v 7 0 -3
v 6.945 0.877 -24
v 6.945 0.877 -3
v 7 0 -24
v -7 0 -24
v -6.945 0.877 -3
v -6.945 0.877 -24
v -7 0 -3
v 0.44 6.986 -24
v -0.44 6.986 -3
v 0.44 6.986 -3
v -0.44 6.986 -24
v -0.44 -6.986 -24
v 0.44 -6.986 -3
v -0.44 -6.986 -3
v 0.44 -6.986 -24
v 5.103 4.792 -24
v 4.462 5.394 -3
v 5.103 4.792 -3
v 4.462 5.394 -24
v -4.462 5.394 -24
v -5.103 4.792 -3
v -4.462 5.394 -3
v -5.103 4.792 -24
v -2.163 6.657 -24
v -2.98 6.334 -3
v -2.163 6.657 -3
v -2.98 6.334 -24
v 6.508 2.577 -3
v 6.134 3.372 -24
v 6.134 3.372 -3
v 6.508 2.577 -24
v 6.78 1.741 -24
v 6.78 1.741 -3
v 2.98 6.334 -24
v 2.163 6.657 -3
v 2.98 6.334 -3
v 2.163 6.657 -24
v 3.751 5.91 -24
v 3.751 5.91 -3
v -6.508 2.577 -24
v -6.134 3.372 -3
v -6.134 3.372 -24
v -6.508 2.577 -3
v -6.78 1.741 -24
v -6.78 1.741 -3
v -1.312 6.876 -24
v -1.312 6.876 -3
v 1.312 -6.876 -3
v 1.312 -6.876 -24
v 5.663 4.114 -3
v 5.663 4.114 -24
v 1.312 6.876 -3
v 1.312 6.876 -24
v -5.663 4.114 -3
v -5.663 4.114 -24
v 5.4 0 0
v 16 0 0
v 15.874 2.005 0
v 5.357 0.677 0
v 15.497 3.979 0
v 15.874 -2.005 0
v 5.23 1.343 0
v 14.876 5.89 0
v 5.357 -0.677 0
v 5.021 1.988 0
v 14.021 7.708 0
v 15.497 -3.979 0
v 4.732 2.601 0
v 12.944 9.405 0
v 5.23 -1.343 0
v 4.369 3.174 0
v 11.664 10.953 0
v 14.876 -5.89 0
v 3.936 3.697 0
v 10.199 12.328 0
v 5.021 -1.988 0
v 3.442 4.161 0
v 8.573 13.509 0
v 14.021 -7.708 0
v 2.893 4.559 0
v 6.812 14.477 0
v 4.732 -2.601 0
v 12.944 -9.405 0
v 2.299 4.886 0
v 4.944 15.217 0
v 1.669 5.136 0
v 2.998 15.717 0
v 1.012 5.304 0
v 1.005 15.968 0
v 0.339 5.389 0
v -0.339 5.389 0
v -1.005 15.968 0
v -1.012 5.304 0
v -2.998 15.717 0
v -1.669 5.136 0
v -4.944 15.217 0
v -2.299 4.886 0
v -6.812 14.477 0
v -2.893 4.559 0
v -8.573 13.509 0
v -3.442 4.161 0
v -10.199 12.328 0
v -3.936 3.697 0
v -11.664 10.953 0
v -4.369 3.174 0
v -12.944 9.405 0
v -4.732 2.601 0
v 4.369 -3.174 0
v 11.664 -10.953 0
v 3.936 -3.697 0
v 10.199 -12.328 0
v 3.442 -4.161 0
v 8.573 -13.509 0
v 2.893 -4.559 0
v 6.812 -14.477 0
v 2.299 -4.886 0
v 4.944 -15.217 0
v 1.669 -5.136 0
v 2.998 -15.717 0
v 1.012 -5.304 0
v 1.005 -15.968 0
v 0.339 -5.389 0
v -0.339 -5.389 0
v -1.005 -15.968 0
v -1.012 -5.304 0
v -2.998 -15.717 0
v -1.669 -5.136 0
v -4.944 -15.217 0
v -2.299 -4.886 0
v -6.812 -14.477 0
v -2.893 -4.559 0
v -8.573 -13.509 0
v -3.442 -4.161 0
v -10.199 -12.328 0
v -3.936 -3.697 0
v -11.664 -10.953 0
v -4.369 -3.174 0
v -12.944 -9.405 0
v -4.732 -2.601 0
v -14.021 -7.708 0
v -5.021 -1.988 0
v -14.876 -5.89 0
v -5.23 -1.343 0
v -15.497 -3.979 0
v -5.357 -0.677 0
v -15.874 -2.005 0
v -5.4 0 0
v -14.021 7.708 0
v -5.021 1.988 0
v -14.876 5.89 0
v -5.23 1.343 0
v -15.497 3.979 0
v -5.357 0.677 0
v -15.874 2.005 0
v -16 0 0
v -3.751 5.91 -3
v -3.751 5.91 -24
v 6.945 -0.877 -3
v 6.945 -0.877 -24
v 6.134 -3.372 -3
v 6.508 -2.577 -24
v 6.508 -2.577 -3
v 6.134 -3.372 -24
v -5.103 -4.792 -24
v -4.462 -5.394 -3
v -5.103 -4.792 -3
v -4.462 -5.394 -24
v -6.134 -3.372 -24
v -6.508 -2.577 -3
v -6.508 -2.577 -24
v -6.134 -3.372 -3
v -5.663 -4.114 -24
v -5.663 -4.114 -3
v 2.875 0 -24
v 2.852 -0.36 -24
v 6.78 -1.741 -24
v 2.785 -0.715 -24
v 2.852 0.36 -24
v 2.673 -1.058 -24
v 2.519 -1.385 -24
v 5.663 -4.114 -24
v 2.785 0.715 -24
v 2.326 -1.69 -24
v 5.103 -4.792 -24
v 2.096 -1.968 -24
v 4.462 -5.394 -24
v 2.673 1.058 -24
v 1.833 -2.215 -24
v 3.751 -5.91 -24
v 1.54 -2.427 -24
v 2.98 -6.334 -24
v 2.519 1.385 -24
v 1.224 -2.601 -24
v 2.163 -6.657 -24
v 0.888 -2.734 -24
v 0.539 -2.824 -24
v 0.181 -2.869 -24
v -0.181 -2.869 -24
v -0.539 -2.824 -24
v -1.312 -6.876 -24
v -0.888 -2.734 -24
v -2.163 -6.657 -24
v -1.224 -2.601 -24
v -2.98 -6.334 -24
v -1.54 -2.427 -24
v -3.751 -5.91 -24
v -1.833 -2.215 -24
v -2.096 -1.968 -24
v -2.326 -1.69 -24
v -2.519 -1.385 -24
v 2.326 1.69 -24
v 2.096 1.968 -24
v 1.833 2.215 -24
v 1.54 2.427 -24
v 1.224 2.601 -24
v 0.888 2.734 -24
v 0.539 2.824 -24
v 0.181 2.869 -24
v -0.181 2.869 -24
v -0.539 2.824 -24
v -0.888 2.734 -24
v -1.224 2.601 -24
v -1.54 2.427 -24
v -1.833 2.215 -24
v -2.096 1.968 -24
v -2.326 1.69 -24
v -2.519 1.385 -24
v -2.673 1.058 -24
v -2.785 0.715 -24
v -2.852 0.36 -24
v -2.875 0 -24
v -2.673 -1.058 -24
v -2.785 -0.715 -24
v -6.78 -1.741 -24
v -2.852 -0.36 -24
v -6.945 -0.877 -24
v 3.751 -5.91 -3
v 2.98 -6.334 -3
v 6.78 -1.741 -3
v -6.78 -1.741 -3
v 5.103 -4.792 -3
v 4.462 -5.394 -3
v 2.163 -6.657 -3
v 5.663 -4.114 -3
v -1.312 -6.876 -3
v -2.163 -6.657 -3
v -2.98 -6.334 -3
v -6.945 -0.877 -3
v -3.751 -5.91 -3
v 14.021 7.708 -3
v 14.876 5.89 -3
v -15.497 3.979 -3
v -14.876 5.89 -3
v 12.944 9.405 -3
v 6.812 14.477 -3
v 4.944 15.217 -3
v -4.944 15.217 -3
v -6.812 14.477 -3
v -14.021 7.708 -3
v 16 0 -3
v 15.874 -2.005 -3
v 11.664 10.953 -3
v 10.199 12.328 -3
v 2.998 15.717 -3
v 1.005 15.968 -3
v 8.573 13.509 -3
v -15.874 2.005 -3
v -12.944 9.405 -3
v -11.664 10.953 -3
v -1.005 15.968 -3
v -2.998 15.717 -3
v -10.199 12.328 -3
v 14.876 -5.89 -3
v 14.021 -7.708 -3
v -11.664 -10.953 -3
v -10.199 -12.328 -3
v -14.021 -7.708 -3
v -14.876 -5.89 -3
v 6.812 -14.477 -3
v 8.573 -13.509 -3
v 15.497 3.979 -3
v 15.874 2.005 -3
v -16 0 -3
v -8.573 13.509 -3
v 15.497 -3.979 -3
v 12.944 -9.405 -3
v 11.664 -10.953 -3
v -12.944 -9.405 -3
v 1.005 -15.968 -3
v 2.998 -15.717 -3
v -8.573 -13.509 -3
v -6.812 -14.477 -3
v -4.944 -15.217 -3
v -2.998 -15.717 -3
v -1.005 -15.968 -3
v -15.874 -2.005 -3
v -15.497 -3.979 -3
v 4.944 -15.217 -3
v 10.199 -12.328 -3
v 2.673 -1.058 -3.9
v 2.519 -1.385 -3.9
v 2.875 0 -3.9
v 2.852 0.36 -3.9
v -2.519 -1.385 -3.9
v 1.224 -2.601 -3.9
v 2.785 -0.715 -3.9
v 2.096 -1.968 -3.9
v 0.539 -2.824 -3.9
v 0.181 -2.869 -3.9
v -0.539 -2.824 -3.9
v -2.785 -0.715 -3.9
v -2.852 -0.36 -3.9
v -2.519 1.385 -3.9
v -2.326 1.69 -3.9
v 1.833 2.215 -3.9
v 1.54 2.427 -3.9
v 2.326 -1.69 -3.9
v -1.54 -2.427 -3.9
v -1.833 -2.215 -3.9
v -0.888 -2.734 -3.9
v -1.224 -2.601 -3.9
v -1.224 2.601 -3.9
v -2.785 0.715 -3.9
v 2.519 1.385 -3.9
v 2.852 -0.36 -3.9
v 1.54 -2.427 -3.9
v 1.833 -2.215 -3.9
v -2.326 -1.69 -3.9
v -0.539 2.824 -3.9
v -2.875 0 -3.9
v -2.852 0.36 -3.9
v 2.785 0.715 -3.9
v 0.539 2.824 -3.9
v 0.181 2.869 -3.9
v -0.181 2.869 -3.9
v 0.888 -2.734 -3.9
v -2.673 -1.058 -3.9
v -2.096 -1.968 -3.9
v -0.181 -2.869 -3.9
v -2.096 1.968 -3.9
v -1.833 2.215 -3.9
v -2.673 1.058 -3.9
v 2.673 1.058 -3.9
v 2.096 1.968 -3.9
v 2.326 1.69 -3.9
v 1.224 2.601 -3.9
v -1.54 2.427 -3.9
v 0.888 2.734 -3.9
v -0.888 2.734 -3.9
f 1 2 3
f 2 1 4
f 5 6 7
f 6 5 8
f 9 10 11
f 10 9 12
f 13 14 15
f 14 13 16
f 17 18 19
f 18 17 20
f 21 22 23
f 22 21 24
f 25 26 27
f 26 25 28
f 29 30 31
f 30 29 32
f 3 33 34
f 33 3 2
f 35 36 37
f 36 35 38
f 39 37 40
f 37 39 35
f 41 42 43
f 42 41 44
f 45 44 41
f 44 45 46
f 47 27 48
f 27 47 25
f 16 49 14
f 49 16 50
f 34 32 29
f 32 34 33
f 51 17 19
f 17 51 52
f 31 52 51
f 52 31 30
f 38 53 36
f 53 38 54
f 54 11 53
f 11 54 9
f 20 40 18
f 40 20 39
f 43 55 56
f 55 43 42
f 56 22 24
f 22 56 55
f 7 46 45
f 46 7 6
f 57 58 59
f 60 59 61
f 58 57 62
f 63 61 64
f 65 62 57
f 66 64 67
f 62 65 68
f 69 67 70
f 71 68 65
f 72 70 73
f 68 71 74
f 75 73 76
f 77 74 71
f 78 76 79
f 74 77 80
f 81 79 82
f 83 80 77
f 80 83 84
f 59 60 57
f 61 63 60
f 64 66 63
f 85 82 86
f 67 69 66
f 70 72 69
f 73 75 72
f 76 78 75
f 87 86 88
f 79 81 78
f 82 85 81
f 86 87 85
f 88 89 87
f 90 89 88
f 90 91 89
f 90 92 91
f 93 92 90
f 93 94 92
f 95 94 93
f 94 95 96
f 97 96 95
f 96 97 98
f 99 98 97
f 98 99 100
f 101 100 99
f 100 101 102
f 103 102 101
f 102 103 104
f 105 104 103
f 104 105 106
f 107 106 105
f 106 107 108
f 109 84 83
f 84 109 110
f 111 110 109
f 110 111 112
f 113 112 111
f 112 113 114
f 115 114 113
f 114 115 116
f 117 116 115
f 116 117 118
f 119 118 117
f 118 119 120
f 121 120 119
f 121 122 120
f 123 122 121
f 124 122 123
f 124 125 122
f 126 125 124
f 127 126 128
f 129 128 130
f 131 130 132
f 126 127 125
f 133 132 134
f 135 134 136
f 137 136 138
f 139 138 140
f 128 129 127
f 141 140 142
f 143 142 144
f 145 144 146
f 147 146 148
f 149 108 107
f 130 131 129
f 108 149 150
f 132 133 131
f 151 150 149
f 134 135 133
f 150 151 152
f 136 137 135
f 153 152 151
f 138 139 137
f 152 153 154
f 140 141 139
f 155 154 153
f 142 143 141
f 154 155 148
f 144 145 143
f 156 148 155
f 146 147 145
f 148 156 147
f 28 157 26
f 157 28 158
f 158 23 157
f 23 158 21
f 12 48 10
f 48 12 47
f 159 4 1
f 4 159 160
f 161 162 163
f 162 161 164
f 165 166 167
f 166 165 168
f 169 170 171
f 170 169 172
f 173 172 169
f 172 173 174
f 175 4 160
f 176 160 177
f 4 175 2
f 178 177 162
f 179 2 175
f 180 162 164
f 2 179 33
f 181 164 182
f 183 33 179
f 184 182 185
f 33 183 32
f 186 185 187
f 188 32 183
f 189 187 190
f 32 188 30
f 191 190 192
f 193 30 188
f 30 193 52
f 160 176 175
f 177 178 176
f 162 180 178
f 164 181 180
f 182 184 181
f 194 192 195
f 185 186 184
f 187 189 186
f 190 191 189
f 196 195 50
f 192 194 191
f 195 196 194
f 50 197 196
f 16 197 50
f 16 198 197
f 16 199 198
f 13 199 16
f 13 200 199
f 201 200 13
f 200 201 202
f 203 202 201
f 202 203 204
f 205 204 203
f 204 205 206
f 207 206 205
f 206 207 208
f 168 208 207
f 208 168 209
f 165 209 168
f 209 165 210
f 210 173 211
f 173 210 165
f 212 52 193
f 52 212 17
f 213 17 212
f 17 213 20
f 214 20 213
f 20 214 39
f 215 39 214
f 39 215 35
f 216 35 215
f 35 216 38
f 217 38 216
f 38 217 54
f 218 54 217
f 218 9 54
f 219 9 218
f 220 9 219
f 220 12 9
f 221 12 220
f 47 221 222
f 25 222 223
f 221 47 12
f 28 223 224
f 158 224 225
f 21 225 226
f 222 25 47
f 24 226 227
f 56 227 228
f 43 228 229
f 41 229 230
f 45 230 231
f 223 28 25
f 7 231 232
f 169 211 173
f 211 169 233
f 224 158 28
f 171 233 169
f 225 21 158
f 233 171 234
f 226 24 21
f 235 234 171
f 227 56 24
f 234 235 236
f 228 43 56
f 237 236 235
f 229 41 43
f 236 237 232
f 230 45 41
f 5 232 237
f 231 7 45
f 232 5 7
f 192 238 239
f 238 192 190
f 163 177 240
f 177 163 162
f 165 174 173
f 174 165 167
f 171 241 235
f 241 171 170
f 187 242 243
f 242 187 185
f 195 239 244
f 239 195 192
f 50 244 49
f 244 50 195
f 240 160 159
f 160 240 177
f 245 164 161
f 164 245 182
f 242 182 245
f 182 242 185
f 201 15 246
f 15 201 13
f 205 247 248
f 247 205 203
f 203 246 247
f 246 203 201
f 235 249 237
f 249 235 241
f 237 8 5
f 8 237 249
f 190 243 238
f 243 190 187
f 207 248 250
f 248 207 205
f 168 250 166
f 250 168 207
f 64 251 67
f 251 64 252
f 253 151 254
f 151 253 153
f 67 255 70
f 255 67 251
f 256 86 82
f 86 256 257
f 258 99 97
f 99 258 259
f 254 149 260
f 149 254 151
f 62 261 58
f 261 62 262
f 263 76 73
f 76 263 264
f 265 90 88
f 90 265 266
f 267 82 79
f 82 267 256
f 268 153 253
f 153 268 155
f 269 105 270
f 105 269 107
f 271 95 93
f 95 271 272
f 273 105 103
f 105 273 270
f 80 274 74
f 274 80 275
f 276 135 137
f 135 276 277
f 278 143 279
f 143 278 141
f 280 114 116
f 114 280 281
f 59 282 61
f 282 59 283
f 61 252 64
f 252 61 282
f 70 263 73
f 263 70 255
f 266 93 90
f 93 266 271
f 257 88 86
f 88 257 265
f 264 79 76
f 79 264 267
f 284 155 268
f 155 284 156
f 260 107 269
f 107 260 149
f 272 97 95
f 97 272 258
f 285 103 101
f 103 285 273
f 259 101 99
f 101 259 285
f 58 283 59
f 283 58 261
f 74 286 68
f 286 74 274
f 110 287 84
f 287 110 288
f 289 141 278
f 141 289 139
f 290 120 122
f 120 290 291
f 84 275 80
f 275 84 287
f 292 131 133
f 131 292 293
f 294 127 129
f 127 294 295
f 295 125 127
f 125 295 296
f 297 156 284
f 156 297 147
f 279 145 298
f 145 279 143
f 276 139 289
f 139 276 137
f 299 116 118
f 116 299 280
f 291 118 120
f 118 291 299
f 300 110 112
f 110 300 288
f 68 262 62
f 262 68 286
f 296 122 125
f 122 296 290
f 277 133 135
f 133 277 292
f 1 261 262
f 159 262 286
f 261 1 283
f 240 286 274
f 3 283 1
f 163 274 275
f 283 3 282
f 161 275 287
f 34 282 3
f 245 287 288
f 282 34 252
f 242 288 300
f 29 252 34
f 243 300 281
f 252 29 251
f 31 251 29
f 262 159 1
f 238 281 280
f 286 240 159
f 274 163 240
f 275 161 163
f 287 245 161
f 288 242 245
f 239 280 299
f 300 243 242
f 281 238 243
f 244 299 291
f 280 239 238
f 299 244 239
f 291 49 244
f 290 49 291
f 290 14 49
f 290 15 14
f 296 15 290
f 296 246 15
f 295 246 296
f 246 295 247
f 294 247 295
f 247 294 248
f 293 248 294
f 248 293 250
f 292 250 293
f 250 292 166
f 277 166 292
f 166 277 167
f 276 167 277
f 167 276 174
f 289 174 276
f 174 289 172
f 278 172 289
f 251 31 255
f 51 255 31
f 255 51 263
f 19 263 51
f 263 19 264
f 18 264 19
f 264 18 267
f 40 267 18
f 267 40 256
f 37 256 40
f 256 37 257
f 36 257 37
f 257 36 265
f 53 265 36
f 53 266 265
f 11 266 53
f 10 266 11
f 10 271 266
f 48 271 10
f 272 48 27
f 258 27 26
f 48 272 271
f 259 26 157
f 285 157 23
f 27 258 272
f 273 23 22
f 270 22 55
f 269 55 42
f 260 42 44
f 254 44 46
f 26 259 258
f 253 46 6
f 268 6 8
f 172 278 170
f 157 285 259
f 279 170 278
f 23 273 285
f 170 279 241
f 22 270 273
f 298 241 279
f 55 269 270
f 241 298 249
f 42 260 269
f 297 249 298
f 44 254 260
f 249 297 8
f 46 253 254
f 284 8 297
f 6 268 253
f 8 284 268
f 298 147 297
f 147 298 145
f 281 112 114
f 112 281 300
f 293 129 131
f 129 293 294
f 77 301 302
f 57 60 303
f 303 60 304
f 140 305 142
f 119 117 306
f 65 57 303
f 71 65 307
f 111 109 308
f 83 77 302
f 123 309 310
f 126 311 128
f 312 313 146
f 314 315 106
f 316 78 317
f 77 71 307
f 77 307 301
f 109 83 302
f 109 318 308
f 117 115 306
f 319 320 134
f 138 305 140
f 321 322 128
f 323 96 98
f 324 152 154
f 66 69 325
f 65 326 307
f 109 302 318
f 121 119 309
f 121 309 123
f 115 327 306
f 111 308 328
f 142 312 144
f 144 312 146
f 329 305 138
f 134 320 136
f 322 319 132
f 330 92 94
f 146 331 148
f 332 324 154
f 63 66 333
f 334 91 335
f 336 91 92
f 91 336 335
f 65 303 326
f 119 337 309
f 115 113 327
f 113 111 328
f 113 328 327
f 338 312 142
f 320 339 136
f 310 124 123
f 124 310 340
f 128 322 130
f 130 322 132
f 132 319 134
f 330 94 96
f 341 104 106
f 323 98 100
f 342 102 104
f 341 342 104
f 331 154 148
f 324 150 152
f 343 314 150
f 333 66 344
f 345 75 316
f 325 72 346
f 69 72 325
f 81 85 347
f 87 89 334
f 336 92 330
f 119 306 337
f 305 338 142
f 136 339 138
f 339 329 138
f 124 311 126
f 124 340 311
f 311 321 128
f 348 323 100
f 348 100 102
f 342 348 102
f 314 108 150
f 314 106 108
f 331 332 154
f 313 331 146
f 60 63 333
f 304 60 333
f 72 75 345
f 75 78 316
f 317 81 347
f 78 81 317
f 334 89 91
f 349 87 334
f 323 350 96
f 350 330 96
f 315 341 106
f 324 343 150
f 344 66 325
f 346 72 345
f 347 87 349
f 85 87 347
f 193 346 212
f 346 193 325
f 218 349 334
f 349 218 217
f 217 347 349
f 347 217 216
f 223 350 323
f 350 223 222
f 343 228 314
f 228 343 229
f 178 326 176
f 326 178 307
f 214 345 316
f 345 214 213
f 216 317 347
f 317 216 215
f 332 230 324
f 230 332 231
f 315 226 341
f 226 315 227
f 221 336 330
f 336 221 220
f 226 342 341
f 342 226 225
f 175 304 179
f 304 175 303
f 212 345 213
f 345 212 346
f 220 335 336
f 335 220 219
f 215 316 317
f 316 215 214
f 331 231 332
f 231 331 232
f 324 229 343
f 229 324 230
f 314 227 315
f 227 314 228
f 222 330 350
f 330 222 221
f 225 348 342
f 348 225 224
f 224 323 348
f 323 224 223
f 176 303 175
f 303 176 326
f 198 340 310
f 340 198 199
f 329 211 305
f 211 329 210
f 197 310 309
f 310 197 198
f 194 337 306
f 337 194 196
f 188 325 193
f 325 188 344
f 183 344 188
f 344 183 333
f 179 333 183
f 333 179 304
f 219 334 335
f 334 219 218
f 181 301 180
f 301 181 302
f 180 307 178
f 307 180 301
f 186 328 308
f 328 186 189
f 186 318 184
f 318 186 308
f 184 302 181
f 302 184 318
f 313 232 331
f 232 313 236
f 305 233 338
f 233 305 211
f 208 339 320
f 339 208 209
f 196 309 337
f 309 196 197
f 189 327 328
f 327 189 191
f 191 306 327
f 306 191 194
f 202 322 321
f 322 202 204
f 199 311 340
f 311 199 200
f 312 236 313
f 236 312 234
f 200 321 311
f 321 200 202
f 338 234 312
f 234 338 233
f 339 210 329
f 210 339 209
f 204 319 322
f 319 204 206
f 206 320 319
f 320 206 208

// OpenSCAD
$fn = 50;


difference() {
	union() {
		translate(v = [0, 0, -24.0000000000]) {
			cylinder(h = 24, r = 7.0000000000);
		}
		translate(v = [0, 0, -3.0000000000]) {
			cylinder(h = 3, r = 16.0000000000);
		}
	}
	union() {
		translate(v = [0, 0, 0]) {
			rotate(a = [0, 0, 0]) {
				difference() {
					union() {
						#translate(v = [0, 0, -24.0000000000]) {
							cylinder(h = 24, r = 2.6000000000);
						}
						#translate(v = [0, 0, -3.9000000000]) {
							cylinder(h = 3.9000000000, r = 7.0000000000, r1 = 2.8750000000, r2 = 5.4000000000);
						}
						#translate(v = [0, 0, -24.0000000000]) {
							cylinder(h = 24, r = 2.8750000000);
						}
						#translate(v = [0, 0, -24.0000000000]) {
							cylinder(h = 24, r = 2.6000000000);
						}
					}
					union();
				}
			}
		}
	}
}
